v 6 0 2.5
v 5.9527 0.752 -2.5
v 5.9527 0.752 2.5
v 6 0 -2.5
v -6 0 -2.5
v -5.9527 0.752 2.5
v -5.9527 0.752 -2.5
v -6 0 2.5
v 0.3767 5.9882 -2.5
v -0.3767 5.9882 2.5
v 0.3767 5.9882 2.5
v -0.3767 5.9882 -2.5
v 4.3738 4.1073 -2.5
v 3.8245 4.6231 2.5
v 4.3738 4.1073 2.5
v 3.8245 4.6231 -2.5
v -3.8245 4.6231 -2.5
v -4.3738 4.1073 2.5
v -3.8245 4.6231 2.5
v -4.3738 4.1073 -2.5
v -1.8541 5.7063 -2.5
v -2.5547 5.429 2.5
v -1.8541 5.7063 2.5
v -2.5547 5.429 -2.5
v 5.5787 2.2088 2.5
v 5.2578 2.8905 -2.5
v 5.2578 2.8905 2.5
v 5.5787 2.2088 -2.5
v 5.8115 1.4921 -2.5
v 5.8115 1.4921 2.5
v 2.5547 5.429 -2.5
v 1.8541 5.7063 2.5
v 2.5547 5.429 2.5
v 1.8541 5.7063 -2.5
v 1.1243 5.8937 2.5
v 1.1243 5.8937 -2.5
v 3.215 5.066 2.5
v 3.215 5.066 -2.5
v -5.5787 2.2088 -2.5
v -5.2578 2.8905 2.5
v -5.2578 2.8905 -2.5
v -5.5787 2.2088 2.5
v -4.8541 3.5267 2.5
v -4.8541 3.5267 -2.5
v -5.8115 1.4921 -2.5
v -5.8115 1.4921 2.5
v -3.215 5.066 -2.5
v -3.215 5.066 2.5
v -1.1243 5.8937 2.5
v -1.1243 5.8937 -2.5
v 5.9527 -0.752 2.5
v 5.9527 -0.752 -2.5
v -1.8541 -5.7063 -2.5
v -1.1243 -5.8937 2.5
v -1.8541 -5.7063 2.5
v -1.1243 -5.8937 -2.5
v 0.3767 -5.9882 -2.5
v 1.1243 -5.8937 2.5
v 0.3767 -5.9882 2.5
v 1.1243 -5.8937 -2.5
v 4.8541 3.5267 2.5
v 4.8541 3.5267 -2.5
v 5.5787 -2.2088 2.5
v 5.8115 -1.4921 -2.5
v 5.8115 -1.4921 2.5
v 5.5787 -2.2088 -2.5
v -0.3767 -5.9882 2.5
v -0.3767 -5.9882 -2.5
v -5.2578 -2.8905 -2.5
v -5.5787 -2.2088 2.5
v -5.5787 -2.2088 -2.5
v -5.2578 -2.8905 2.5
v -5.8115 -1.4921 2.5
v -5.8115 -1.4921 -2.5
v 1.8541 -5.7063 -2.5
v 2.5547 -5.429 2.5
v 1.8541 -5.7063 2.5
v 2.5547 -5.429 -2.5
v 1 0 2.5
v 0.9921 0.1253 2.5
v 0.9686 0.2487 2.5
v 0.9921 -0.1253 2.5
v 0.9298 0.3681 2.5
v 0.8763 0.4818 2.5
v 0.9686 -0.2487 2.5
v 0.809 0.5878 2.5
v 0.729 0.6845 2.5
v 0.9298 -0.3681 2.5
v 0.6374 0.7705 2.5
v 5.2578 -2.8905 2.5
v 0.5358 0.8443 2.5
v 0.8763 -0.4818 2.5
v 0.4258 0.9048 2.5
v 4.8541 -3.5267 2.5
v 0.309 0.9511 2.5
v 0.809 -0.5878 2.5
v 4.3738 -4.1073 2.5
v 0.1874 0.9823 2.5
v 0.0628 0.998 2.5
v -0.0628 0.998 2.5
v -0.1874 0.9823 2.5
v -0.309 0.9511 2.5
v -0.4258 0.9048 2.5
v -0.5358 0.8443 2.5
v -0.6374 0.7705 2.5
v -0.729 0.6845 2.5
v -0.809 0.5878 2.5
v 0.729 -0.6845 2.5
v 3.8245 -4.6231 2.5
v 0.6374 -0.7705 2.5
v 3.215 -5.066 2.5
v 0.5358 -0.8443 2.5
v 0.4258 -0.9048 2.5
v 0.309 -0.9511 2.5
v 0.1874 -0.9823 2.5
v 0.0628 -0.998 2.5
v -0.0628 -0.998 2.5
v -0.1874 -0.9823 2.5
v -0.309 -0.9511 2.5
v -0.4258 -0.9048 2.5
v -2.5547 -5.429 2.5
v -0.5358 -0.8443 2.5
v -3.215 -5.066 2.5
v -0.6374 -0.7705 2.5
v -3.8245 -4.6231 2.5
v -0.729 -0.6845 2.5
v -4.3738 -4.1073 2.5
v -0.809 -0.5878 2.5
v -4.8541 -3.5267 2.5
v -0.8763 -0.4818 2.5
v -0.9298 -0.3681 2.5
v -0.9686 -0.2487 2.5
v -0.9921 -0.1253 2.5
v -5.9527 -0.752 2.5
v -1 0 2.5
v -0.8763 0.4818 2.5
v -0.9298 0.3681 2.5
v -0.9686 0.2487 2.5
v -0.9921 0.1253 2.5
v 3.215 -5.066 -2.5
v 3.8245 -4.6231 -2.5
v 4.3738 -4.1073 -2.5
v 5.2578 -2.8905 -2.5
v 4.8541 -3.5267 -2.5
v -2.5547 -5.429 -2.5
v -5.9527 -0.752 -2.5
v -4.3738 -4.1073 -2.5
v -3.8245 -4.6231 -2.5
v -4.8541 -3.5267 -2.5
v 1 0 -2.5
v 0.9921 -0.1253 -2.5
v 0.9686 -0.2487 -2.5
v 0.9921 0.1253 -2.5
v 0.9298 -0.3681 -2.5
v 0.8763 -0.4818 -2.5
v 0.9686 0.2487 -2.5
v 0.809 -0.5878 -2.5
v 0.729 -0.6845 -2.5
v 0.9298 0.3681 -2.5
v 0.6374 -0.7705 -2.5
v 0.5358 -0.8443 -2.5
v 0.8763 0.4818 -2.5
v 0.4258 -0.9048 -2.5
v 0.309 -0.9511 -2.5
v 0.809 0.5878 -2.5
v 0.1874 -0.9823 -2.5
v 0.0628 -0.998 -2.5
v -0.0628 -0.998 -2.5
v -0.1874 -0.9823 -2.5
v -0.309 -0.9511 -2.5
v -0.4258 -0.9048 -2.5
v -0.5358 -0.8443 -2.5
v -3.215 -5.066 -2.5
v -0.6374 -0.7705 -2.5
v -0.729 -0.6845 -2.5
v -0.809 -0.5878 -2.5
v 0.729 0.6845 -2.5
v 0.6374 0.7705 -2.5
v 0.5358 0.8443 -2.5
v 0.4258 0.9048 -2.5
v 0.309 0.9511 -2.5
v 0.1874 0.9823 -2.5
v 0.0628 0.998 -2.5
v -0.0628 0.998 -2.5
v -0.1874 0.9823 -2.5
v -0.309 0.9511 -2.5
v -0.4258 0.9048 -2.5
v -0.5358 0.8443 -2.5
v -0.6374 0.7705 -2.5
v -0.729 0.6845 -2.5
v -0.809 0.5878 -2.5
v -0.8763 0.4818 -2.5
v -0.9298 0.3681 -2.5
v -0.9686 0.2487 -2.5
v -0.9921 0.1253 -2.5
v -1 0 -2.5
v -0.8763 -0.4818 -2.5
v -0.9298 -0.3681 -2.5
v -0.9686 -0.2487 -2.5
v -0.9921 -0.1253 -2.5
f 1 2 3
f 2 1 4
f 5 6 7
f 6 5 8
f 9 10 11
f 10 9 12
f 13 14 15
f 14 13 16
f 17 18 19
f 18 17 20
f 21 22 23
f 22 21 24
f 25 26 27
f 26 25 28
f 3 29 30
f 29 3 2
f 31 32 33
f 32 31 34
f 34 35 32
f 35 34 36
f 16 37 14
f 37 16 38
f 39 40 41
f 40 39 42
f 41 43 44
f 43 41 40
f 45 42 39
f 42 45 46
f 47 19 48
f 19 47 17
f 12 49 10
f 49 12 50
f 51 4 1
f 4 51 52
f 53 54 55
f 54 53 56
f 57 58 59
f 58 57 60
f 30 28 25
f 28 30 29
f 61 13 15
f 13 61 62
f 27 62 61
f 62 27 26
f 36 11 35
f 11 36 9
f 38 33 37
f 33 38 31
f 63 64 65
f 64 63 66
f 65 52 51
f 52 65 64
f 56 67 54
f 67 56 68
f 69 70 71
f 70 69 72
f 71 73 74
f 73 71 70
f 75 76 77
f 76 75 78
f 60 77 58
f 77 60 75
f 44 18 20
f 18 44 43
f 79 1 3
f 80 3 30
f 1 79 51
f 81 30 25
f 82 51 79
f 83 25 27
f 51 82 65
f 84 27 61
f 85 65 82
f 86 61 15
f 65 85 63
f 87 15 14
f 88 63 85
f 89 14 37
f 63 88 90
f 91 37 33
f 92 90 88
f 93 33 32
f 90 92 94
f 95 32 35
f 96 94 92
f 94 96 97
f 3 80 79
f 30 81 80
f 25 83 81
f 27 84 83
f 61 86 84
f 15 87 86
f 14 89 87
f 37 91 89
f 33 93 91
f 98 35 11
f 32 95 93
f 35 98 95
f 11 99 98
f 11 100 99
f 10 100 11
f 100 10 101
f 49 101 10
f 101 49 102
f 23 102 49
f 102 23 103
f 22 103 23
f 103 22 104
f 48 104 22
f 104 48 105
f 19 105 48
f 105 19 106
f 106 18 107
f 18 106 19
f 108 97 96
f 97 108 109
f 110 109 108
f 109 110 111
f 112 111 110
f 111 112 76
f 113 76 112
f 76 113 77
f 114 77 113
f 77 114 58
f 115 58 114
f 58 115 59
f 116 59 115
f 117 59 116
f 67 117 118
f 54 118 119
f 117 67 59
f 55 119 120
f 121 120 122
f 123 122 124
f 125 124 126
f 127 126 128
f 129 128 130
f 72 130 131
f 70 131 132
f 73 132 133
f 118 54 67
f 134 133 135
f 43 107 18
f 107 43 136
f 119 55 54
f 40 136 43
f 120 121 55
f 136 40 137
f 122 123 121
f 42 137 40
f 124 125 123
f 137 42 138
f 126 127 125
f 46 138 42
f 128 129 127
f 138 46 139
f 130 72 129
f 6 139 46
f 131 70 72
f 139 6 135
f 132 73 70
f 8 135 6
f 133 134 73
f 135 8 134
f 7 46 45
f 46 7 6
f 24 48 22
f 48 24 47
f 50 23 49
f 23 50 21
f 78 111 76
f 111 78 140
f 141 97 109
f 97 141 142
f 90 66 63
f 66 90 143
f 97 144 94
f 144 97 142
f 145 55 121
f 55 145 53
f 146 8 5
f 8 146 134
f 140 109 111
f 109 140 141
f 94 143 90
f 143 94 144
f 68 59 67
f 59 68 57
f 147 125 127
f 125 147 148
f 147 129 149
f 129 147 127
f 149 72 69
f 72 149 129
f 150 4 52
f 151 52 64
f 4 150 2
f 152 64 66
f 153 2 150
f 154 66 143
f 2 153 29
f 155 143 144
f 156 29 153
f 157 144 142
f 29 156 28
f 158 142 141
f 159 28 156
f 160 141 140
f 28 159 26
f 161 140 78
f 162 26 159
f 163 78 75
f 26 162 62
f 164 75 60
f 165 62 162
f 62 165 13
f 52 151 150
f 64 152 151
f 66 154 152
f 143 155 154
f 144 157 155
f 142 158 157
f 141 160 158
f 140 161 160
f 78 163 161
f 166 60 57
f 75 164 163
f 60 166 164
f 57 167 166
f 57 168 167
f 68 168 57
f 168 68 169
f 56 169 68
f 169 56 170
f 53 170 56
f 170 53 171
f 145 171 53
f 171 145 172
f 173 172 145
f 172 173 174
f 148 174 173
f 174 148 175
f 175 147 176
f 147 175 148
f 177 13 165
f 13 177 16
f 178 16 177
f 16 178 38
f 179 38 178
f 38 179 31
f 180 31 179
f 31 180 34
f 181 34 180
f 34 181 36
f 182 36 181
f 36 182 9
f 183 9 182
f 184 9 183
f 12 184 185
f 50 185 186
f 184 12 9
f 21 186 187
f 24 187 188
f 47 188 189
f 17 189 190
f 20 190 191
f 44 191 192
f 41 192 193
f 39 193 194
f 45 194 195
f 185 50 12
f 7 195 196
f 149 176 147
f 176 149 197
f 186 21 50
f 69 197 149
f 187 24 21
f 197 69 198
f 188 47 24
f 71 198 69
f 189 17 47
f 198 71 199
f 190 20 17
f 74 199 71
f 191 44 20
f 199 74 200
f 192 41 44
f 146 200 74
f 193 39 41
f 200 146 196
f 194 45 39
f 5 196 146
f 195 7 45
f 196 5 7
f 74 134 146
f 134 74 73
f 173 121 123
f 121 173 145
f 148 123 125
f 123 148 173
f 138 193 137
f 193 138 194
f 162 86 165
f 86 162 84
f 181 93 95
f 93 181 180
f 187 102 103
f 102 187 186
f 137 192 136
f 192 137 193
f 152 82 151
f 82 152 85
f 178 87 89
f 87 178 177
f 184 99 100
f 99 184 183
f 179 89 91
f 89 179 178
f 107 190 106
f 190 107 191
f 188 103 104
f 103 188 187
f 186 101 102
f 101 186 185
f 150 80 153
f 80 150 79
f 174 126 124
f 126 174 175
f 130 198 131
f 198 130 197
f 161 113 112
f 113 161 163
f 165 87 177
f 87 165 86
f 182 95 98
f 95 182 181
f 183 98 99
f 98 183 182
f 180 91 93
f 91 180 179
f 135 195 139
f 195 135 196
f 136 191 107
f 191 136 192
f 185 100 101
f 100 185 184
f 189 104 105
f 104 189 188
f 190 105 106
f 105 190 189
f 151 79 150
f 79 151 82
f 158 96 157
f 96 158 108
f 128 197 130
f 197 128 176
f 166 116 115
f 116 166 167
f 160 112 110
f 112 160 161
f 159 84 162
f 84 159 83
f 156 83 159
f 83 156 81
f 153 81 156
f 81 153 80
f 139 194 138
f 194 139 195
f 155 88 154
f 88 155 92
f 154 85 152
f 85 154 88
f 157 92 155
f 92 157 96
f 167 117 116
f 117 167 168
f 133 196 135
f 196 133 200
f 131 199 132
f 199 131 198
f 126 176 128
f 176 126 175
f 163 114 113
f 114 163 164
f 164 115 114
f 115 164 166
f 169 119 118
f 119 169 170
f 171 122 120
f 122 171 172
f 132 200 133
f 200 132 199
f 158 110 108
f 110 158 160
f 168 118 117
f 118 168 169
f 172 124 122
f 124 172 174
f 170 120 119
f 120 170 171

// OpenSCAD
$fn = 50;


difference() {
	union() {
		translate(v = [0, 0, -2.5000000000]) {
			cylinder(h = 5, r = 6.0000000000);
		}
	}
	union() {
		translate(v = [0, 0, -100.0000000000]) {
			cylinder(h = 200, r = 1.0000000000);
		}
	}
}
